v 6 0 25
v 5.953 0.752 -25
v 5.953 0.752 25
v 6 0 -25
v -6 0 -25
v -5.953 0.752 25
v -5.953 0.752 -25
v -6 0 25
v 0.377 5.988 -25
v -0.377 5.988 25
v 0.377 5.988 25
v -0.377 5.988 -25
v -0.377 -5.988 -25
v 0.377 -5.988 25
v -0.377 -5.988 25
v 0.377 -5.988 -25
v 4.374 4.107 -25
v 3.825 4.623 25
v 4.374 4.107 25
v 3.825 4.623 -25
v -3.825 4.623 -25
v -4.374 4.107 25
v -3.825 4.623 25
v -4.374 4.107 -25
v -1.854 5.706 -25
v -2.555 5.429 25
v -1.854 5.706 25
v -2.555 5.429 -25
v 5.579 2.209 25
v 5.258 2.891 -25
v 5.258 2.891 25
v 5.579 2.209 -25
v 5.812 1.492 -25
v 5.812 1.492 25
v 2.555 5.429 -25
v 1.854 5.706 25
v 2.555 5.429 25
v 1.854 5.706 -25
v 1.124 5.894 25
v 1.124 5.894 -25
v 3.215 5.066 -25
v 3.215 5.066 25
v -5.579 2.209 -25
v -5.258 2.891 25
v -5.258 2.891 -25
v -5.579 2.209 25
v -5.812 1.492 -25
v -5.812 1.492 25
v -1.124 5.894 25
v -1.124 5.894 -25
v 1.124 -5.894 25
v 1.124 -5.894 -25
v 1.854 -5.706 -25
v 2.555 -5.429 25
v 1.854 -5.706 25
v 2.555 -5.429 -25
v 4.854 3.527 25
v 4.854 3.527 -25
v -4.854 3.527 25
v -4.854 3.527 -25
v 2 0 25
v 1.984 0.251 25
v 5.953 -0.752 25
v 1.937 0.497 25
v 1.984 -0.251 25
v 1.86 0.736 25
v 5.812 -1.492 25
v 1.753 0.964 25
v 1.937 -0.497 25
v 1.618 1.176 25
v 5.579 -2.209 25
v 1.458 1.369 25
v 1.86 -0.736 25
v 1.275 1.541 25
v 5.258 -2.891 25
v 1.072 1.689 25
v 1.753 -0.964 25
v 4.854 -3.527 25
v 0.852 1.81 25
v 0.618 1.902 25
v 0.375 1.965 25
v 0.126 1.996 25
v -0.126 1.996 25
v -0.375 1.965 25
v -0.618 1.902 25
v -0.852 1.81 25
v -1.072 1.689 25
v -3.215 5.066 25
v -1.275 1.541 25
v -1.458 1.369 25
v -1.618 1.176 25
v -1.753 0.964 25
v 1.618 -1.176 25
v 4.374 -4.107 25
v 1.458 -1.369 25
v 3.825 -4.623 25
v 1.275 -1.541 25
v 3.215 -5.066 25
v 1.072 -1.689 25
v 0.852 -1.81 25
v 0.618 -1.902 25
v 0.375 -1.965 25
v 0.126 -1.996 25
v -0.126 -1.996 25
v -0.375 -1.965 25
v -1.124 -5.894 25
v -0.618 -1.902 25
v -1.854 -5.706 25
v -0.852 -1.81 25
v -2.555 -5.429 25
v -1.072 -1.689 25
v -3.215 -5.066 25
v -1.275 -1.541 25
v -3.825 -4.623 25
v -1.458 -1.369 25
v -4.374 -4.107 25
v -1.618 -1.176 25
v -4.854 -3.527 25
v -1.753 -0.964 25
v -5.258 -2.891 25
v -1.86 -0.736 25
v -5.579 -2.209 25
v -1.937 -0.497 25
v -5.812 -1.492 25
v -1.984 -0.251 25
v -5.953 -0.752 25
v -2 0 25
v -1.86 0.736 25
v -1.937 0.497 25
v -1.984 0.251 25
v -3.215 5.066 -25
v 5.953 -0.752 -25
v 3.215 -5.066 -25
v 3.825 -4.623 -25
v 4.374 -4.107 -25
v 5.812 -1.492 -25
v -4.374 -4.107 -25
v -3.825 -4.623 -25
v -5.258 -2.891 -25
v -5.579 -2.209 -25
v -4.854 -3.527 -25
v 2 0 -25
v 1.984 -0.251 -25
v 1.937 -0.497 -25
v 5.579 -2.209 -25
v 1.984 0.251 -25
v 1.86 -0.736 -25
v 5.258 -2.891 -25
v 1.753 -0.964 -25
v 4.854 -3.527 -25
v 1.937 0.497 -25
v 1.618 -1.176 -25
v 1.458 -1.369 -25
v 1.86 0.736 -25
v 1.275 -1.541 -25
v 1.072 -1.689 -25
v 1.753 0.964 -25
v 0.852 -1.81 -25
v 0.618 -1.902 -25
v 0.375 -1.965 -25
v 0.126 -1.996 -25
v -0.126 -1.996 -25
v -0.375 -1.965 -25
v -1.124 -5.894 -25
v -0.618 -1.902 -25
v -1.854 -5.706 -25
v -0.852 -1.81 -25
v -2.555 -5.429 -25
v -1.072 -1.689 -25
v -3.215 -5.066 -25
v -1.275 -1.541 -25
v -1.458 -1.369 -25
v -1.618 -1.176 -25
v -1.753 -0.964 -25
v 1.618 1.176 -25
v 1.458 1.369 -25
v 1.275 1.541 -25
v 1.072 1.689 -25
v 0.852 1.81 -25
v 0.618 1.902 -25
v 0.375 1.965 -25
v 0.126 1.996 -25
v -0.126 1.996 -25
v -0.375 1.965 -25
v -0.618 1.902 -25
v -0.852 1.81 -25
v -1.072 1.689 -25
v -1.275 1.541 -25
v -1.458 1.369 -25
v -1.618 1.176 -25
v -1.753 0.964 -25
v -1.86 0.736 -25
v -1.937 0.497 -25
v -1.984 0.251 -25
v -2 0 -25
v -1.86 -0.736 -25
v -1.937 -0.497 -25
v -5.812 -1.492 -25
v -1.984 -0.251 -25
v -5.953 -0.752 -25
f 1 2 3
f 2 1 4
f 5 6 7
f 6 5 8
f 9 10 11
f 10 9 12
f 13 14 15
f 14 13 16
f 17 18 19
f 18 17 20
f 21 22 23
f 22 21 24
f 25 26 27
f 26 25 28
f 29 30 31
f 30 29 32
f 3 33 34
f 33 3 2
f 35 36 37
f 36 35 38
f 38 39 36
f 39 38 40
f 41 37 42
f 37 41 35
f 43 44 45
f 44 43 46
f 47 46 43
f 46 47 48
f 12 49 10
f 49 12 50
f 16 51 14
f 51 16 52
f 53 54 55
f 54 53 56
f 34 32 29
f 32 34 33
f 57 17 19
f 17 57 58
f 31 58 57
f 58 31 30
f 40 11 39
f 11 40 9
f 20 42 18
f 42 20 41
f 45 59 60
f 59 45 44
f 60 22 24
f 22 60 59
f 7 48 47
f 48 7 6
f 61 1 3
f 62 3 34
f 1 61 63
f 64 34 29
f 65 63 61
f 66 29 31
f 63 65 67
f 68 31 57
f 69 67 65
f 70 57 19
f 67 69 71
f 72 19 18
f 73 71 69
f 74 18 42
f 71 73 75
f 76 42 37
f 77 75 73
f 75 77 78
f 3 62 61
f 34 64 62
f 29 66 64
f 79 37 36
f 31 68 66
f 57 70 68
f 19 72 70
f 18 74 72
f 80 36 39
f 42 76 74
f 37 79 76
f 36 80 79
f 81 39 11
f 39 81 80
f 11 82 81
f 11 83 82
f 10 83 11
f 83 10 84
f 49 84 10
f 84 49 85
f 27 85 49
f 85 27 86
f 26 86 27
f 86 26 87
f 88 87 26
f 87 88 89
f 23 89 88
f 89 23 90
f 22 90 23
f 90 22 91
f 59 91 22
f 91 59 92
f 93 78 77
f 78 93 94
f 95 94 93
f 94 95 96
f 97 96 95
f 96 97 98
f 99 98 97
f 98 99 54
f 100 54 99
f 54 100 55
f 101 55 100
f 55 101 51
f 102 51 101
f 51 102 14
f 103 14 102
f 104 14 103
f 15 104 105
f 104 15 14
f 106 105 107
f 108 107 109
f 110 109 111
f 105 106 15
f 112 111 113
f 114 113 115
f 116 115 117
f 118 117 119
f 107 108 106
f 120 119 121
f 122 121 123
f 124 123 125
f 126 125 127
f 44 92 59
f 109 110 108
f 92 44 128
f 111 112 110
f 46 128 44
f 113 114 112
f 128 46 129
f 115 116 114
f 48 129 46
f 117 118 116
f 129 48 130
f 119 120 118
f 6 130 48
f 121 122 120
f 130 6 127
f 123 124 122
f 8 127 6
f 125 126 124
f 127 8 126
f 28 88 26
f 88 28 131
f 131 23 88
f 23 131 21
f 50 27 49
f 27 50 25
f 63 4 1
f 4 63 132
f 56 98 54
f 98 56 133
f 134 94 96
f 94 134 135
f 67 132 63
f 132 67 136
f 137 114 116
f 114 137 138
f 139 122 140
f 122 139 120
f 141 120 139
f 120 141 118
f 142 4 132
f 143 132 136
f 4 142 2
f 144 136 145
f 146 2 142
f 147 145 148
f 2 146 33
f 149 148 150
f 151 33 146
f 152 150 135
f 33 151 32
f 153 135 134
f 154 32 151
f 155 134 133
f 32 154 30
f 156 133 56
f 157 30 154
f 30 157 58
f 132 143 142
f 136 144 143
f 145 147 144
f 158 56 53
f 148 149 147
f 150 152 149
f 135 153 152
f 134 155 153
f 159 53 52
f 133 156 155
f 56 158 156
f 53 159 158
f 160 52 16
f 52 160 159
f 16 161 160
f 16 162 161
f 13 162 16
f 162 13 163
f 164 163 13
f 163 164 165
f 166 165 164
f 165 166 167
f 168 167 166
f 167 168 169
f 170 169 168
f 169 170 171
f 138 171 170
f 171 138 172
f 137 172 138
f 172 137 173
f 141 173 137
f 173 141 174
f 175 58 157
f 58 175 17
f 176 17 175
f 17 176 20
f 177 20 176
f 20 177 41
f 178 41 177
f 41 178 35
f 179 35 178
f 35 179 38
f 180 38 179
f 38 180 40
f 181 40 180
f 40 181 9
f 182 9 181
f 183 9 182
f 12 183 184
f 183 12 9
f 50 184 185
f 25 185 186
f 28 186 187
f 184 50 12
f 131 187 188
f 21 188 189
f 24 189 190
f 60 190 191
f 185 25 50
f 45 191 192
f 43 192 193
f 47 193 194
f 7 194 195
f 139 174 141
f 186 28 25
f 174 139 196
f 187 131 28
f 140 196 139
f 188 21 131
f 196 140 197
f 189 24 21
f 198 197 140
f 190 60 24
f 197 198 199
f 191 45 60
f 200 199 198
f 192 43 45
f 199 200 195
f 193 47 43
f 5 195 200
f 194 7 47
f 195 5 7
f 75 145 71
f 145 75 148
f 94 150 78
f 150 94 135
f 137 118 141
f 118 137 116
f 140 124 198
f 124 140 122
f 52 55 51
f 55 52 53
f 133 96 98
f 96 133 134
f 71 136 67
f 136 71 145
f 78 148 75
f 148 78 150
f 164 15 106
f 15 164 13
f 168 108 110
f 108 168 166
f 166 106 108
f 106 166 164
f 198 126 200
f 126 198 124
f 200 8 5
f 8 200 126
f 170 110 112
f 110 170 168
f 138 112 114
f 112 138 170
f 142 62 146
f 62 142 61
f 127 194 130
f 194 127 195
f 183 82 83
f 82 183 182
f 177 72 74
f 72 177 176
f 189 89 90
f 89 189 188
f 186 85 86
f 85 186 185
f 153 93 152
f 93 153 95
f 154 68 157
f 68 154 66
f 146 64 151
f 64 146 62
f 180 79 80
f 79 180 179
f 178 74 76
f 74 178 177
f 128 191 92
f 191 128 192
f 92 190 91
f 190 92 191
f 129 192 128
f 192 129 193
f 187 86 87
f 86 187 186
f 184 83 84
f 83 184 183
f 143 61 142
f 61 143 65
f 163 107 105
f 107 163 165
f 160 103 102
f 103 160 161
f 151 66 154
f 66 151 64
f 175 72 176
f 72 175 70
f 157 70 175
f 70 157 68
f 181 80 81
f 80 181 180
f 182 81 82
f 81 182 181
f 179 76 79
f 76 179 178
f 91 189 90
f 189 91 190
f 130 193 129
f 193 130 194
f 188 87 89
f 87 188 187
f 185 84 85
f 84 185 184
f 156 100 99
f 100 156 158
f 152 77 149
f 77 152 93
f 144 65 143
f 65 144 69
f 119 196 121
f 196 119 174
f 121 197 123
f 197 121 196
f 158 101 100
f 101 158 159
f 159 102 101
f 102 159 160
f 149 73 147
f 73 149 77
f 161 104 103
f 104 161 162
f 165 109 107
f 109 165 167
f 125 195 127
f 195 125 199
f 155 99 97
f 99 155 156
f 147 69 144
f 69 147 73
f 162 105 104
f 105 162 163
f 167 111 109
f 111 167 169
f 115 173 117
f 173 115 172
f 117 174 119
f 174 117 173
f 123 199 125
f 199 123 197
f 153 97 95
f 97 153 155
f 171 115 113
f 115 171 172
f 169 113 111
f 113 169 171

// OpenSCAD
$fn = 50;


difference() {
	union() {
		translate(v = [0, 0, -25.0000000000]) {
			cylinder(h = 50, r = 6.0000000000);
		}
	}
	union() {
		translate(v = [0, 0, -100.0000000000]) {
			cylinder(h = 200, r = 2);
		}
	}
}
